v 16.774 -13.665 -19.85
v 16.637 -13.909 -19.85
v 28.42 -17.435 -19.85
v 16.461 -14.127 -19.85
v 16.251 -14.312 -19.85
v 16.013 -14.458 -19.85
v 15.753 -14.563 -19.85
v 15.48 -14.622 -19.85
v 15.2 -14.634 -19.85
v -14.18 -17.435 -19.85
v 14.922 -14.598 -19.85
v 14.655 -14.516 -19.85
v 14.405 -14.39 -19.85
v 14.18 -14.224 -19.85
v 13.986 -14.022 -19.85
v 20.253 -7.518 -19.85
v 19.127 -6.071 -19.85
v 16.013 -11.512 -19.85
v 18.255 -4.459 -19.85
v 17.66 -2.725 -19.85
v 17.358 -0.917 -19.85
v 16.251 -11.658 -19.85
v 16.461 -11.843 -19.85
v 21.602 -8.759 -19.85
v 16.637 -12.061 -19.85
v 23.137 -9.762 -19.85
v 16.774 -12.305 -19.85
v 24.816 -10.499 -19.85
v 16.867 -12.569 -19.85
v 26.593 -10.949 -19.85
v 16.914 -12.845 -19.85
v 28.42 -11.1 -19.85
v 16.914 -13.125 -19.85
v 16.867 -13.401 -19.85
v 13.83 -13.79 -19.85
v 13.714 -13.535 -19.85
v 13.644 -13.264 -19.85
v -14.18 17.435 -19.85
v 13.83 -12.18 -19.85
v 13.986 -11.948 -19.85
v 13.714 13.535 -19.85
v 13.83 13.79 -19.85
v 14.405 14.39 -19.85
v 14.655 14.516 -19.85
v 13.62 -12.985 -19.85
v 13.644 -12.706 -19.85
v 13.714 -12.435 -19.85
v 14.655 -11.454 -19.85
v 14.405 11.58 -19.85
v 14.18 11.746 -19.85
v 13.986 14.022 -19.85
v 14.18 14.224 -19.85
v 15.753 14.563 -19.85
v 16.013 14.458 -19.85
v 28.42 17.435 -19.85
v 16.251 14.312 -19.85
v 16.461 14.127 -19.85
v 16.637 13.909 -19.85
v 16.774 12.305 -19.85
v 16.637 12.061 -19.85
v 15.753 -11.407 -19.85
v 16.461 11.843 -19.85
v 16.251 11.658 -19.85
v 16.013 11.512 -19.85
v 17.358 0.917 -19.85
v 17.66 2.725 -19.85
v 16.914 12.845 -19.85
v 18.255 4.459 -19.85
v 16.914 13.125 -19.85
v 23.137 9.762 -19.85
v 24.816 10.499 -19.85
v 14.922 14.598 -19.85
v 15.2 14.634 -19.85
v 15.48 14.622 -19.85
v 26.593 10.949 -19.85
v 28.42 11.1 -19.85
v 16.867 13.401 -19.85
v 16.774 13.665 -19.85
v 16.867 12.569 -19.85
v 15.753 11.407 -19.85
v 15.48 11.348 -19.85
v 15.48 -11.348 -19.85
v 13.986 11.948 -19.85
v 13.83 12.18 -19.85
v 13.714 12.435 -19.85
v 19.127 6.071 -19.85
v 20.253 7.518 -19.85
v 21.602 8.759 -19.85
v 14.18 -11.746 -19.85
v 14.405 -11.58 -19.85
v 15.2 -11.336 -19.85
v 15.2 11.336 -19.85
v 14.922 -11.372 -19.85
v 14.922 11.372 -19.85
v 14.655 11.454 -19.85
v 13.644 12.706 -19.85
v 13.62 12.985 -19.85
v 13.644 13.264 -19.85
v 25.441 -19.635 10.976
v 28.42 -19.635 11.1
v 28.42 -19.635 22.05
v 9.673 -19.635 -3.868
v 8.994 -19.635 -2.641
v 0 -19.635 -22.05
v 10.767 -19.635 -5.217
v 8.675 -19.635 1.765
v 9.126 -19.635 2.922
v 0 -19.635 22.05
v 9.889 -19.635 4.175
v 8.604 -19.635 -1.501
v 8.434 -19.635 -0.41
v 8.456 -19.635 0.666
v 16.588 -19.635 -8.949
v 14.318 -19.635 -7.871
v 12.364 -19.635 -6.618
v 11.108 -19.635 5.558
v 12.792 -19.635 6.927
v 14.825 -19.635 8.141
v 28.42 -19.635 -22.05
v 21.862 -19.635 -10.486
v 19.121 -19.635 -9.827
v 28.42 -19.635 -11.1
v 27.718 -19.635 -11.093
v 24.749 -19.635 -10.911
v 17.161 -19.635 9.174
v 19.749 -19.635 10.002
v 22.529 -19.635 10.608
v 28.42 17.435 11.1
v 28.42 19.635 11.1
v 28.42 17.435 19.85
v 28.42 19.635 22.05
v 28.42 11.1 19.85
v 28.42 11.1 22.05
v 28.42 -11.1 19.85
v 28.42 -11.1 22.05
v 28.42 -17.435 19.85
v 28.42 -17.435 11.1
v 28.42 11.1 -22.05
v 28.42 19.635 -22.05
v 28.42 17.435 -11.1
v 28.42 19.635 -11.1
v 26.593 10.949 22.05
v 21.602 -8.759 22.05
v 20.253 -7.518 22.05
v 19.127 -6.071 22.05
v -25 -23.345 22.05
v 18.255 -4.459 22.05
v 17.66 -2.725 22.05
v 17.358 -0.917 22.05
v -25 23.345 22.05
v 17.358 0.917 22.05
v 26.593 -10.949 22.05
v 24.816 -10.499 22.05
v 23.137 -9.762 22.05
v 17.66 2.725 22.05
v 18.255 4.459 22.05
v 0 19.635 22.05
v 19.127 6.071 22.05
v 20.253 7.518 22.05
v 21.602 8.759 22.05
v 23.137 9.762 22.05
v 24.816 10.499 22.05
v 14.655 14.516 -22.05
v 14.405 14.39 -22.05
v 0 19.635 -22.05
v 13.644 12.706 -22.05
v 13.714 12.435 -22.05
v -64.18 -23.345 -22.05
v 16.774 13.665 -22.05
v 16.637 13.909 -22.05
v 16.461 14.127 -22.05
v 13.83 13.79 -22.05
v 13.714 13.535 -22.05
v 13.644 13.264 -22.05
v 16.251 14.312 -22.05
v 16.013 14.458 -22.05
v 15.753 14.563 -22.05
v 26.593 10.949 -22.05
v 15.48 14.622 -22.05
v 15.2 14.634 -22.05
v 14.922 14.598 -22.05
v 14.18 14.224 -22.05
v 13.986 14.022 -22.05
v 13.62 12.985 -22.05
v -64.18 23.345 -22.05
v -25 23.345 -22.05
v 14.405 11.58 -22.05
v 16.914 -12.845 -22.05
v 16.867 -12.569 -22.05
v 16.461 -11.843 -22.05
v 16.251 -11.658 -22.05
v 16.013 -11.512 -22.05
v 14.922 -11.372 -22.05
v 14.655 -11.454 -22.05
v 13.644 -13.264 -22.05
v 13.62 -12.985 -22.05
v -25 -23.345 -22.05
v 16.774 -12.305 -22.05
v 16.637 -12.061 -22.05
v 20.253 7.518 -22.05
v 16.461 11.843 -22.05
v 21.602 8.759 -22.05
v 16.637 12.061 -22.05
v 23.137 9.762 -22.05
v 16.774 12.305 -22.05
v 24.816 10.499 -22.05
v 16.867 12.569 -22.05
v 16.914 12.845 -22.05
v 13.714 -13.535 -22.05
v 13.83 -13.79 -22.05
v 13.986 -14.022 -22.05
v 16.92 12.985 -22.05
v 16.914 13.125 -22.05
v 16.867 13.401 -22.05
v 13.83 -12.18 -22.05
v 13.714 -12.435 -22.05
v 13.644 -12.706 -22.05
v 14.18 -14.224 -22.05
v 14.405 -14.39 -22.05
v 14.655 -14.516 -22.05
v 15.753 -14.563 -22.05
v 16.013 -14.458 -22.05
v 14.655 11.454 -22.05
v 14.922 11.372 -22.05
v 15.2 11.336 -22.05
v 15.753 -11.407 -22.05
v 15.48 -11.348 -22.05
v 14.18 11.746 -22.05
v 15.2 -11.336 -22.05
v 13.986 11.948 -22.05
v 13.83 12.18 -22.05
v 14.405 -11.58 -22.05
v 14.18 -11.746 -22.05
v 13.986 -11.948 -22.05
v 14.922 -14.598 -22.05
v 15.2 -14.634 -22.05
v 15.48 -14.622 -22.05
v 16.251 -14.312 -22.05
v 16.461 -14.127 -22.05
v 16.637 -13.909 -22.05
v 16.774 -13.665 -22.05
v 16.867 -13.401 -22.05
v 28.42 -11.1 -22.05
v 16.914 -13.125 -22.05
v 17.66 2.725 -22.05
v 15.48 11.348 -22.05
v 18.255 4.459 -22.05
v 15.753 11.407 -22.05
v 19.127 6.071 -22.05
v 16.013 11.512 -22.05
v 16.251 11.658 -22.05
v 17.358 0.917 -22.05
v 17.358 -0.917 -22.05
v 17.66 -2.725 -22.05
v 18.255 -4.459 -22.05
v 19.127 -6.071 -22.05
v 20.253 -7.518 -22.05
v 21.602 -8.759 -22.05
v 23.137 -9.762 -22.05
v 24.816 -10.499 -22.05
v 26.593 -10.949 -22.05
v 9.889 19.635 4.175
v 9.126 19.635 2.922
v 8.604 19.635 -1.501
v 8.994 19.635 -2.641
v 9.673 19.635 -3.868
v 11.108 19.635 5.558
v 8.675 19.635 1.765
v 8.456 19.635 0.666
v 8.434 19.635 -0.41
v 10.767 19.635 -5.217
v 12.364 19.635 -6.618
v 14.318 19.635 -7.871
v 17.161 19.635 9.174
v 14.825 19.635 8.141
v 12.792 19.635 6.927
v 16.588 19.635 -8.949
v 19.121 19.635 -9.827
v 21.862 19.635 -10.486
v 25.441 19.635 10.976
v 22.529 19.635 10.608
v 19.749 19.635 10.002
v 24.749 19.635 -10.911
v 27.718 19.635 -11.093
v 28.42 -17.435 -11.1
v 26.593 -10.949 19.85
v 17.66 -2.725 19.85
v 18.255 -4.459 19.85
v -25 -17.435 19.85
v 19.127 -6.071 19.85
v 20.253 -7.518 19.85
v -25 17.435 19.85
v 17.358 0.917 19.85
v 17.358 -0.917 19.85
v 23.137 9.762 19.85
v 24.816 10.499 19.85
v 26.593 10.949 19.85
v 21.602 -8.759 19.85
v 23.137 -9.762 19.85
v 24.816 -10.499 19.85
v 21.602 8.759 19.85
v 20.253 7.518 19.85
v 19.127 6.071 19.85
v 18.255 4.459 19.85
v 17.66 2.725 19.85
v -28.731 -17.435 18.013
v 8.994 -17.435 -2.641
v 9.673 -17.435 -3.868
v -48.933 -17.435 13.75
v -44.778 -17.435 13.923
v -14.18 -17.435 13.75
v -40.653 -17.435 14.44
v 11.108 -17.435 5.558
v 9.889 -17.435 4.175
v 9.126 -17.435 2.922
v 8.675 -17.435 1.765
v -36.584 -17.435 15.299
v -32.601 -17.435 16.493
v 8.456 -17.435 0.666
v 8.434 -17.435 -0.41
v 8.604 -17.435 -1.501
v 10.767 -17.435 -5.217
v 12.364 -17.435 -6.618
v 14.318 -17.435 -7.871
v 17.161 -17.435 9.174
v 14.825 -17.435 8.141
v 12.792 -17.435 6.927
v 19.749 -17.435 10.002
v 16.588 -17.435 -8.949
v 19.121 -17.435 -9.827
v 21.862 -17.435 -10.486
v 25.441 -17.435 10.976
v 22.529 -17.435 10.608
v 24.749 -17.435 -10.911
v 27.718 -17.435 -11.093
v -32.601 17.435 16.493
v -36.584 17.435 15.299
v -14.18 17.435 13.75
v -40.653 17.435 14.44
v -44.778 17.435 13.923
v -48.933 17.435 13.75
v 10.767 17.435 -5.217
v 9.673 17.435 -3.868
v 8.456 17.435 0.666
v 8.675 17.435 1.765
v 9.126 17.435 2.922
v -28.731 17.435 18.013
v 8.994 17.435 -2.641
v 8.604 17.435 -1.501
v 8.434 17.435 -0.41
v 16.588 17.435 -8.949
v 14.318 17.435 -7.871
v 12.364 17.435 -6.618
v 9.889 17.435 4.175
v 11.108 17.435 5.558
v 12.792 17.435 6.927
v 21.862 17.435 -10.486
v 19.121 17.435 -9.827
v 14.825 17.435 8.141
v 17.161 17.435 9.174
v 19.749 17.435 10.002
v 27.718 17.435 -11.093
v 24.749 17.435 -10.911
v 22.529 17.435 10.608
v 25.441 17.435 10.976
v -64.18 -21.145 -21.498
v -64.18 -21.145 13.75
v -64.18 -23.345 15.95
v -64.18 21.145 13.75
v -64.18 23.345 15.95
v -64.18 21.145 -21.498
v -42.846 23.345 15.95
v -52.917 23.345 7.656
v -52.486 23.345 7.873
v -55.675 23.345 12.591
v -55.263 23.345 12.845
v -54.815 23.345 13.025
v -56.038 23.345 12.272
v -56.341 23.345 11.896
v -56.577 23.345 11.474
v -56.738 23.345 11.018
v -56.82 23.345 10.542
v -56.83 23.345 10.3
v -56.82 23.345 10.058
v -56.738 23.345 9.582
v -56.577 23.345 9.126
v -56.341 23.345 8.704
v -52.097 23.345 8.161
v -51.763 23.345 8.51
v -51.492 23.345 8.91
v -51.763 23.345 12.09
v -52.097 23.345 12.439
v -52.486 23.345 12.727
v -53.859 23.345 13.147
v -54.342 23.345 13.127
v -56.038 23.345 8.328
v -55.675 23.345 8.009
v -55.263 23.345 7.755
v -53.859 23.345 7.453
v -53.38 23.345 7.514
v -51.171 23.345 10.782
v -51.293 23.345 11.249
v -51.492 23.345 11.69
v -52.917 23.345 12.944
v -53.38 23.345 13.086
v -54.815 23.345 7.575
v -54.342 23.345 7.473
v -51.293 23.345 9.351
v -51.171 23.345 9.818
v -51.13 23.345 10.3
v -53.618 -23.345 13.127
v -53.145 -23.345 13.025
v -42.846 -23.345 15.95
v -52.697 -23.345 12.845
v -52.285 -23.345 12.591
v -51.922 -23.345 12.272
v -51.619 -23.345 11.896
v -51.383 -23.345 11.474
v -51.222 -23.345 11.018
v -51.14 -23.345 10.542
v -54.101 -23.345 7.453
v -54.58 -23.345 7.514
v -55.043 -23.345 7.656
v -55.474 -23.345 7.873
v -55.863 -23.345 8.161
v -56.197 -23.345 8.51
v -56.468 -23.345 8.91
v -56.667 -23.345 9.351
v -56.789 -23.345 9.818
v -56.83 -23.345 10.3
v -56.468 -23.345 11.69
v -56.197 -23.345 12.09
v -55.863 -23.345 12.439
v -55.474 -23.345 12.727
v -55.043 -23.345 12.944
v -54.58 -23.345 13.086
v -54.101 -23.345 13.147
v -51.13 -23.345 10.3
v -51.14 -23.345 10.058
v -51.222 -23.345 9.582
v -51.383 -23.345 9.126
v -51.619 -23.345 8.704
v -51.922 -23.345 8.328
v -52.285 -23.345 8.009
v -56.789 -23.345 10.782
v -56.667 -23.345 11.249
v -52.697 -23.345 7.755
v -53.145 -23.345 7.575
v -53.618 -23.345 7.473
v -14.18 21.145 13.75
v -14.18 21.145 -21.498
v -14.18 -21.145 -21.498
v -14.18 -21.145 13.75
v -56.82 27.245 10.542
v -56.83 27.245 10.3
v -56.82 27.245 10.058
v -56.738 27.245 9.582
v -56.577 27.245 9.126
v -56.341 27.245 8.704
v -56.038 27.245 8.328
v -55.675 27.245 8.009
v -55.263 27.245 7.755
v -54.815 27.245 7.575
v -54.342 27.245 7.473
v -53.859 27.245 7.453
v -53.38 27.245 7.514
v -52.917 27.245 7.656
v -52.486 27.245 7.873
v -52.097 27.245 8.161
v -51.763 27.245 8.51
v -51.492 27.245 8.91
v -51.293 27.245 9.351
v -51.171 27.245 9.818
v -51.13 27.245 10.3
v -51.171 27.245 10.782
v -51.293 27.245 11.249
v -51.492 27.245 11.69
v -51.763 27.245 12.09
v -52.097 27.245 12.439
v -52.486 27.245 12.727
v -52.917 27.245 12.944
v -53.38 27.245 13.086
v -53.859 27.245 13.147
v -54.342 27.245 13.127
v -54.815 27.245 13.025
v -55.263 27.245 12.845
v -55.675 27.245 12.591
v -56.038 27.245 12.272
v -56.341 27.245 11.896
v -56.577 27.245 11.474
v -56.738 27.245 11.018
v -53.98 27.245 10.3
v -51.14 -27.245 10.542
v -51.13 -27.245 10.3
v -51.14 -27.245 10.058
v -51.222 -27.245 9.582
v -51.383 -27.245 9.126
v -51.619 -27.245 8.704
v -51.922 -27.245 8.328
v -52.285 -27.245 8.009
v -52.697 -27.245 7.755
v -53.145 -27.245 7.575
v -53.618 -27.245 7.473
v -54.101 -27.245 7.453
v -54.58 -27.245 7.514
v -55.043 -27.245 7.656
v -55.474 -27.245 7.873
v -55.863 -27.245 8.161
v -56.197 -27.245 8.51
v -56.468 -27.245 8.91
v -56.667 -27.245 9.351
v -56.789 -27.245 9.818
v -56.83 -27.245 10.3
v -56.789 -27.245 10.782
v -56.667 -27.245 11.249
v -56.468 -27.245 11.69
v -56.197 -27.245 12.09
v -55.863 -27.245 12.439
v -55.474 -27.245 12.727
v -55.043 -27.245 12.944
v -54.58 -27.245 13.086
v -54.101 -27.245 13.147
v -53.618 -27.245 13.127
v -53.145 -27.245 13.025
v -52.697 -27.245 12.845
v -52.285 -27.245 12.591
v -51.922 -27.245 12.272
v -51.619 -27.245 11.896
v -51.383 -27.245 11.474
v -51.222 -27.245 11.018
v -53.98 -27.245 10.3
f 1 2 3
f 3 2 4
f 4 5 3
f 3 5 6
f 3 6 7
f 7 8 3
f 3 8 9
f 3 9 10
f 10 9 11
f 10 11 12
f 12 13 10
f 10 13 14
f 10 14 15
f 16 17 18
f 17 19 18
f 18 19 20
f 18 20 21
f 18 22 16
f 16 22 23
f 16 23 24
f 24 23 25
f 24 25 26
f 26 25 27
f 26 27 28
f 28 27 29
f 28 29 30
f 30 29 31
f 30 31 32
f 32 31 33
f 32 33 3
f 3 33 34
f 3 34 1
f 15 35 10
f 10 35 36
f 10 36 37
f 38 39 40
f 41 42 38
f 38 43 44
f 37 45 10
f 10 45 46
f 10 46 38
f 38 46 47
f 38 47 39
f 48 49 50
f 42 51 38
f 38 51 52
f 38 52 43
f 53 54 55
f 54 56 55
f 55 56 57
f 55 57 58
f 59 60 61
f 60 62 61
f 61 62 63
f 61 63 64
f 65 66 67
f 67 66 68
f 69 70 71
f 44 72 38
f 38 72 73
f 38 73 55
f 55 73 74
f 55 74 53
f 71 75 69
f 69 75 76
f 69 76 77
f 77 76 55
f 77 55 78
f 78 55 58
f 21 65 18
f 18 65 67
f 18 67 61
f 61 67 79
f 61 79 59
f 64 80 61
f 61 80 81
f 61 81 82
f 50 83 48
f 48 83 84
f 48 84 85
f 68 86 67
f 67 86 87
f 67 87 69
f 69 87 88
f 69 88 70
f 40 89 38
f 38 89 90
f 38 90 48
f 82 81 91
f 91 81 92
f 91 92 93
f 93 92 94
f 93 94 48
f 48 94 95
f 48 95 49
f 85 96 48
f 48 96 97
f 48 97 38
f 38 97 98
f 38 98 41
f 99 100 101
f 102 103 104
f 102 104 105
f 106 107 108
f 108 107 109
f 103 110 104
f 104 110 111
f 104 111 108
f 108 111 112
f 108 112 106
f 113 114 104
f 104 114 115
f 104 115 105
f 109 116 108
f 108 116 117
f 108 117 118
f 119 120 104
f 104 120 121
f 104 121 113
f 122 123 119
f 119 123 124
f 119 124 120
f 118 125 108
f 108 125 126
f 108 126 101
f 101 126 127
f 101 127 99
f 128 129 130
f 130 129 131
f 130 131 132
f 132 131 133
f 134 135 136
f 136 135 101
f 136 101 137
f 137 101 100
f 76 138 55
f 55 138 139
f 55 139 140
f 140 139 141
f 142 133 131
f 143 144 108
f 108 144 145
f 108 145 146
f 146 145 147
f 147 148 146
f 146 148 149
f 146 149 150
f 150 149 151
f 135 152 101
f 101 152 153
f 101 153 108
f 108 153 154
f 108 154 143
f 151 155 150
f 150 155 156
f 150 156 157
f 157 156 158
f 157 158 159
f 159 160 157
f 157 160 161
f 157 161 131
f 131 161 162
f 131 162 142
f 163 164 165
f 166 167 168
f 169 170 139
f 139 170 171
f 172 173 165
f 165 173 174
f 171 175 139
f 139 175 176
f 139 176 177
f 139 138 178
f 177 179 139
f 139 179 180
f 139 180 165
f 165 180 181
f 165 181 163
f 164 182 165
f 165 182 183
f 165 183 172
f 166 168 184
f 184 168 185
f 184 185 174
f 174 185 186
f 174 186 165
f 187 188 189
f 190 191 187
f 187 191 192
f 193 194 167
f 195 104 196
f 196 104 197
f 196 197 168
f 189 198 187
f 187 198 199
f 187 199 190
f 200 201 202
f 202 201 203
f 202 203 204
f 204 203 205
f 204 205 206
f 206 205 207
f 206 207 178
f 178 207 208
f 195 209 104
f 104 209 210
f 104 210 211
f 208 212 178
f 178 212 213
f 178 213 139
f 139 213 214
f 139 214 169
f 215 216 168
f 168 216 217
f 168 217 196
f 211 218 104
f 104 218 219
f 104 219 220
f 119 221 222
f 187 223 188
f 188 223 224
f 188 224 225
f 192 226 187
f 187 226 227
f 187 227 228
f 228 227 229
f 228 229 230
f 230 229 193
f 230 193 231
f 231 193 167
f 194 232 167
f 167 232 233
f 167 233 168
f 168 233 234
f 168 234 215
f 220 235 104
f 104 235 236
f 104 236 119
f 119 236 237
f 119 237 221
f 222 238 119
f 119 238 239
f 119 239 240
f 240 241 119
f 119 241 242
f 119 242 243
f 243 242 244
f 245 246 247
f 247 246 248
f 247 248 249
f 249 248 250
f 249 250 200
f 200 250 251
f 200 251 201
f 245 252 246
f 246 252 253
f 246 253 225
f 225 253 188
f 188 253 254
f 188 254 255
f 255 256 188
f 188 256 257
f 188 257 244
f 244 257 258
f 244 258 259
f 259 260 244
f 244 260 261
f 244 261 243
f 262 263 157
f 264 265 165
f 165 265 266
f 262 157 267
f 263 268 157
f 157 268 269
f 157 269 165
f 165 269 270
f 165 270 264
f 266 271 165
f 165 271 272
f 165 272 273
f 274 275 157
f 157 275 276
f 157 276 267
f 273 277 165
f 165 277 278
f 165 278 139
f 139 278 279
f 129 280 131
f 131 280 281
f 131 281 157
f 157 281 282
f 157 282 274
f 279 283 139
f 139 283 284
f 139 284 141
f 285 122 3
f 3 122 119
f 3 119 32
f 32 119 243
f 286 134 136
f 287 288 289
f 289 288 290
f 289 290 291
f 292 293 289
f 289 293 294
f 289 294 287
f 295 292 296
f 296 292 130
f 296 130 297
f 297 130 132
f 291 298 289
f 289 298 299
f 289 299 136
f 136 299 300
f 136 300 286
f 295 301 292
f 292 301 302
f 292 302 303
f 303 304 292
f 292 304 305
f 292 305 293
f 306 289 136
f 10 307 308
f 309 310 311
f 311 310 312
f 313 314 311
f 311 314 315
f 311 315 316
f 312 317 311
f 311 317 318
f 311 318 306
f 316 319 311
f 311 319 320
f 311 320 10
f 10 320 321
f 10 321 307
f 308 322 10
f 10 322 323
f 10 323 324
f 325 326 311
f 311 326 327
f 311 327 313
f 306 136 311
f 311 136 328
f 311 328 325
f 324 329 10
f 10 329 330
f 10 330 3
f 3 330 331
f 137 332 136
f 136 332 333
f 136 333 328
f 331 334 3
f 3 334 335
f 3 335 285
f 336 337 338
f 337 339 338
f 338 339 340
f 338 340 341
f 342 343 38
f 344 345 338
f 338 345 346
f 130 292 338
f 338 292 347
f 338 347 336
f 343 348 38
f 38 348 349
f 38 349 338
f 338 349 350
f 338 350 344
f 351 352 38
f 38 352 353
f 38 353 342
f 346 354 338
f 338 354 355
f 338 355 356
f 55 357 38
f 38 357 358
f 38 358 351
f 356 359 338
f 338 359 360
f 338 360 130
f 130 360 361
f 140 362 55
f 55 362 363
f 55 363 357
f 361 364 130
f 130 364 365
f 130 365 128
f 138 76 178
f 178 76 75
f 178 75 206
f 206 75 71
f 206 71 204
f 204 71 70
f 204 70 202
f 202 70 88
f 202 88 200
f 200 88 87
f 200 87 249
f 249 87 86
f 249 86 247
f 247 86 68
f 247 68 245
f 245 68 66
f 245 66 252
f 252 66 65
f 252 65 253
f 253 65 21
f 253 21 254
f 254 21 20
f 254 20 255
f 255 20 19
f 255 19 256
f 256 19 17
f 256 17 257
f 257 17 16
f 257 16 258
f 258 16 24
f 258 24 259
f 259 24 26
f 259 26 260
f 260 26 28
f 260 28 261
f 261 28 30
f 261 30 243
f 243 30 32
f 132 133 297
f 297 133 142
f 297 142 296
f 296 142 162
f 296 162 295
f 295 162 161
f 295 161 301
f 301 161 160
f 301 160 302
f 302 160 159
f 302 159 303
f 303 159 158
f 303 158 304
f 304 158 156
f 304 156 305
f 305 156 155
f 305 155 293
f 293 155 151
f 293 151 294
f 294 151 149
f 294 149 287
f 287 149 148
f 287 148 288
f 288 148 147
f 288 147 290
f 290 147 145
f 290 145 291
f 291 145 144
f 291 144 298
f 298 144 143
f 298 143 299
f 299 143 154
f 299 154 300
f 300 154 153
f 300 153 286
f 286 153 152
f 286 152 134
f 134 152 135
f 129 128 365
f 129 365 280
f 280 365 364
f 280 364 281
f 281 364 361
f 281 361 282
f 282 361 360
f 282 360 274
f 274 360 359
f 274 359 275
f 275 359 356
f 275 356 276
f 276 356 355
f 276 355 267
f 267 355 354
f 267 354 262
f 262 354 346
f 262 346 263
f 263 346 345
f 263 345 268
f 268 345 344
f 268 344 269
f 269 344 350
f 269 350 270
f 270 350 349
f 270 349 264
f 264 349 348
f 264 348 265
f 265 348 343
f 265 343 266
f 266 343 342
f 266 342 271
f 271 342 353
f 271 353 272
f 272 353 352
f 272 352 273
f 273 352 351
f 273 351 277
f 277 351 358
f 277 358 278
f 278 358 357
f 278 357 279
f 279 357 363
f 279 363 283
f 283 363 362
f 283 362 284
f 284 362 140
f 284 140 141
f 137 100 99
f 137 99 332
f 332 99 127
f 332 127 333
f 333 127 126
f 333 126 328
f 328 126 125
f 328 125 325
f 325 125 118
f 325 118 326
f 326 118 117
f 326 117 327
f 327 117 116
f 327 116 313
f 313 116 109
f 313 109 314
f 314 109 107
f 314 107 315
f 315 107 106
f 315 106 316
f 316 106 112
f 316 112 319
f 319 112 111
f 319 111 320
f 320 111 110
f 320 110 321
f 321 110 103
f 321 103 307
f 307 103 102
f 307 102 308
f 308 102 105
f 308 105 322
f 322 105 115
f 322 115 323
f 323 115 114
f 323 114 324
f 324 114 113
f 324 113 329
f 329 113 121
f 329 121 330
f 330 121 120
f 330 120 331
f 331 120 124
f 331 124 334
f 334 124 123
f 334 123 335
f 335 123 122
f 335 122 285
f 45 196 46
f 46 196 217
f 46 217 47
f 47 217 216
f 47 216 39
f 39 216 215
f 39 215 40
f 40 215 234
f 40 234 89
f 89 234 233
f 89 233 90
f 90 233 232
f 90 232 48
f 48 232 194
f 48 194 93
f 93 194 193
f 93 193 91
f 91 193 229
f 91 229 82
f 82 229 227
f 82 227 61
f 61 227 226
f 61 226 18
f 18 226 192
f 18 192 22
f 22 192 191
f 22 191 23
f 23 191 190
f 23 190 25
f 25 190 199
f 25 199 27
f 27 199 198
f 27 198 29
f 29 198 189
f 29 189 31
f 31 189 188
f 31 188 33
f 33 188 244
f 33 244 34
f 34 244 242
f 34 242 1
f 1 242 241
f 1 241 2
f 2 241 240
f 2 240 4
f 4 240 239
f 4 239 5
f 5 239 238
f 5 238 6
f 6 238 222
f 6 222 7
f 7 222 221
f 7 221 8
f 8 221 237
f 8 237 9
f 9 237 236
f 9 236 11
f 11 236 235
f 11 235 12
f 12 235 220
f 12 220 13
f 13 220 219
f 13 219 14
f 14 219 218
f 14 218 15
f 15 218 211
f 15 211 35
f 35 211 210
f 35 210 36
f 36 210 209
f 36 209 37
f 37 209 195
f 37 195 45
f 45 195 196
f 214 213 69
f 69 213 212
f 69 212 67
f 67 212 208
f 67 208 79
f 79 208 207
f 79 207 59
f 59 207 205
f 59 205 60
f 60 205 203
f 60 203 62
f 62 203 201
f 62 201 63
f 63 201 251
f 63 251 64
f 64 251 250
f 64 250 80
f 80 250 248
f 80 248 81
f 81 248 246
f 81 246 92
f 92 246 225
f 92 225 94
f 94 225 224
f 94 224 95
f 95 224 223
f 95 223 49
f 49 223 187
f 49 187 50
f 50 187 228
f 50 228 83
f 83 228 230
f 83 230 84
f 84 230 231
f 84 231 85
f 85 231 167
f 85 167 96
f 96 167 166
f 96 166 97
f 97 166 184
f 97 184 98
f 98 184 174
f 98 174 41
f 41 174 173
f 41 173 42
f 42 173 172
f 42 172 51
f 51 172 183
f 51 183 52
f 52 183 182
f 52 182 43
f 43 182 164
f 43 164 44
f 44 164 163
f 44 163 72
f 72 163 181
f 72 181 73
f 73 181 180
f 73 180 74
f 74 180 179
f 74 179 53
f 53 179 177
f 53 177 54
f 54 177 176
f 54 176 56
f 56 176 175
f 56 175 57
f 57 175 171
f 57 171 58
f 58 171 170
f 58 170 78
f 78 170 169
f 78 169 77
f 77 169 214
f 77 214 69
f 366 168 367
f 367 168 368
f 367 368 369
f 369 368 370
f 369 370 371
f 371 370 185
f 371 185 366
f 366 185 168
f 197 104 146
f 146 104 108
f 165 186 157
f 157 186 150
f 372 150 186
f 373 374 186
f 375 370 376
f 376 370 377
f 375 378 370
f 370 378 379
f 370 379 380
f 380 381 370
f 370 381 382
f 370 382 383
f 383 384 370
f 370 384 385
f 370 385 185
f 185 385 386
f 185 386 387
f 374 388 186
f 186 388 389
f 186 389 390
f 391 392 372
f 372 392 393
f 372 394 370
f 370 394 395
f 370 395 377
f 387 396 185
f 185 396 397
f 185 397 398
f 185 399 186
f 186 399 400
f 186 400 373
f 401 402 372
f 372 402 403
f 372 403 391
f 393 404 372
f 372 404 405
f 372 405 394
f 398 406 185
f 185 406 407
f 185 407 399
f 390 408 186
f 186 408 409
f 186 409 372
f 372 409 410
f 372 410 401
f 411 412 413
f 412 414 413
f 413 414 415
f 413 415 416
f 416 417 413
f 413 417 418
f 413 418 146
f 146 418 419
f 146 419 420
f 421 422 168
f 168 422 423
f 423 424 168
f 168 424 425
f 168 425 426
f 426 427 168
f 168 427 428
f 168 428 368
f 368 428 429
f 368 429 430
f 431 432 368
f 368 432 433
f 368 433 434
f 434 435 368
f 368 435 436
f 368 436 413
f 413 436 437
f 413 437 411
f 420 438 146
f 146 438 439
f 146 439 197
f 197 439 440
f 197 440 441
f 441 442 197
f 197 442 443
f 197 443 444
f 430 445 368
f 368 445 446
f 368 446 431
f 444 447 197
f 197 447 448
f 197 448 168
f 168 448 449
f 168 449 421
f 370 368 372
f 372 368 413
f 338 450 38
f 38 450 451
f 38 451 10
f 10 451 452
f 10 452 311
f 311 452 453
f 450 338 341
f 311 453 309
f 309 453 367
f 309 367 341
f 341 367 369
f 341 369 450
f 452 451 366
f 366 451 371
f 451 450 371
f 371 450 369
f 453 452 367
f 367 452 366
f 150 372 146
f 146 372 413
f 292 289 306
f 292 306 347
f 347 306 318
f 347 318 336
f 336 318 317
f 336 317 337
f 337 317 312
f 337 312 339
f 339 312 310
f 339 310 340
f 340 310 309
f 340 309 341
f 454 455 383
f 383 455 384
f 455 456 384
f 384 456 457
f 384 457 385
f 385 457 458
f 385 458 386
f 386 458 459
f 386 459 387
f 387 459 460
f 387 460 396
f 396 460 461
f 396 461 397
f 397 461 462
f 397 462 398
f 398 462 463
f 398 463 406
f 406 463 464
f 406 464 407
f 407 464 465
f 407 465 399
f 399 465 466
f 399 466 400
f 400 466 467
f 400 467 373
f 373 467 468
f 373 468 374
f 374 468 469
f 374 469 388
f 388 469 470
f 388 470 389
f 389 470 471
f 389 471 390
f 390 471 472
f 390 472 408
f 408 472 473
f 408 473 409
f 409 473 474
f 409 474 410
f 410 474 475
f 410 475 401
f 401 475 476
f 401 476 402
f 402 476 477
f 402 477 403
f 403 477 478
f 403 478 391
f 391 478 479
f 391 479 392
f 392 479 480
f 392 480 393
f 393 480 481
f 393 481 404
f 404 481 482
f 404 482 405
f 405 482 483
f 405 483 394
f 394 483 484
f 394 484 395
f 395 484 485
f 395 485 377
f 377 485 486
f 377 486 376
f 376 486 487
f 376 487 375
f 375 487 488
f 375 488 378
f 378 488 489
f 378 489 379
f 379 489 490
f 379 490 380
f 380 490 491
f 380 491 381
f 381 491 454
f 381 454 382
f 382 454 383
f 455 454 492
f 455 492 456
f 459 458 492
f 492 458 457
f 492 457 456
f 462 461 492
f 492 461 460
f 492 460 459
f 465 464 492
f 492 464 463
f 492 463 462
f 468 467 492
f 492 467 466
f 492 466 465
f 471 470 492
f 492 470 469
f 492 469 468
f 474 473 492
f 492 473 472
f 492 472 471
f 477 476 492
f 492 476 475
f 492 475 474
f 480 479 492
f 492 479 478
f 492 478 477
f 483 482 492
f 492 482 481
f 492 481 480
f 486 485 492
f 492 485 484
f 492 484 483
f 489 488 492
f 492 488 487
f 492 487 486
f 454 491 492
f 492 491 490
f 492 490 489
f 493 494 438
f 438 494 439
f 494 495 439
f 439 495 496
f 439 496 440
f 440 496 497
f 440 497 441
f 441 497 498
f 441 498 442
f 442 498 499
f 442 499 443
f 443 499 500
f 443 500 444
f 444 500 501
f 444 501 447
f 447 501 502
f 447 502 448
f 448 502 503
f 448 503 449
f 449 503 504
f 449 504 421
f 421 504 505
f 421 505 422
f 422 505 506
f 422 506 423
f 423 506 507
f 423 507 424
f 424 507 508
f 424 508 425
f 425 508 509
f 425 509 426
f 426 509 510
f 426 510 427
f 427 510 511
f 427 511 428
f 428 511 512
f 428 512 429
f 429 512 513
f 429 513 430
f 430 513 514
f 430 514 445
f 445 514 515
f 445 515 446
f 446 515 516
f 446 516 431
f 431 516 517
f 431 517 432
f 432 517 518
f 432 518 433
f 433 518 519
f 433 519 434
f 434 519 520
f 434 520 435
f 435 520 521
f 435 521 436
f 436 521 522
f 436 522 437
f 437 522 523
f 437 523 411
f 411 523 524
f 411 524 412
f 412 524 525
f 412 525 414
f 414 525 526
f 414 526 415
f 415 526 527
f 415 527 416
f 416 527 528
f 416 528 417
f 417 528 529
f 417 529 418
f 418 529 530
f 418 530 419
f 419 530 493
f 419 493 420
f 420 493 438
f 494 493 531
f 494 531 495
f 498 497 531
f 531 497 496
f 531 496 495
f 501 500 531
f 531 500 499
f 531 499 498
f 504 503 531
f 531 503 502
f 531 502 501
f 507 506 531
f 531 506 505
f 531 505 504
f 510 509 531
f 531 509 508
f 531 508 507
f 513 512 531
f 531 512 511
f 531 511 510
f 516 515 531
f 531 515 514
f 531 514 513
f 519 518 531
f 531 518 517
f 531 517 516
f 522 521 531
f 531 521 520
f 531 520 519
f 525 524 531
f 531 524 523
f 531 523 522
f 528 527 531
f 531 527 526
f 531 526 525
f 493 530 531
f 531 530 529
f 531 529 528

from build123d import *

# Parameters (mm, degrees)
ESQUISSE1_W             = 44.1
ESQUISSE1_H             = 39.27
BOSS_EXTRU_1_DEPTH      = 28.42
ESQUISSE2_W             = 39.7
ESQUISSE2_H             = 34.87
ENL_V_MAT_EXTRU_1_DEPTH = 28.42
ESQUISSE3_R             = 11.1
ENL_V_MAT_EXTRU_2_DEPTH = 50
ESQUISSE4_RX            = 20
ESQUISSE4_RY            = 11.1
ENL_V_MAT_EXTRU_3_DEPTH = 50
ESQUISSE5_R             = 1.65
ENL_V_MAT_EXTRU_4_DEPTH = 10
ESQUISSE6_W             = 64.18
ESQUISSE6_H             = 39.27
BOSS_EXTRU_2_DEPTH      = 2.2
ESQUISSE8_W             = 44.1
ESQUISSE8_H             = 39.27
BOSS_EXTRU_3_DEPTH      = 25
BOSS_EXTRU_4_DEPTH      = 44.1
BOSS_EXTRU_5_START      = -2.2
ESQUISSE13_W            = 39.18
ESQUISSE13_H            = 3.71
BOSS_EXTRU_5_DEPTH      = 2.2
ESQUISSE14_W            = 39.7
ESQUISSE14_H            = 34.87
ENL_V_MAT_EXTRU_5_DEPTH = 25
ESQUISSE17_W            = 38
ESQUISSE17_H            = 46.69
BOSS_EXTRU_6_DEPTH      = 39.18
ESQUISSE18_W            = 35.2475242
ESQUISSE18_H            = 42.29
ENL_V_MAT_EXTRU_6_DEPTH = 50
BOSS_EXTRU_7_DEPTH      = 46.69
CONG_1_R                = 50
ESQUISSE23_R            = 2.85
BOSS_EXTRU_8_DEPTH      = 3.9
BOSS_EXTRU_9_START      = 3.9
ESQUISSE26_R            = 2.85
BOSS_EXTRU_9_DEPTH      = 3.9


with BuildPart() as part:
    # Esquisse1 → Boss.-Extru.1 (new body)
    with BuildSketch(Plane(origin=(0, 0, 0), x_dir=(0, 0, -1), z_dir=(1, 0, 0))):
        Rectangle(ESQUISSE1_W, ESQUISSE1_H)
    extrude(amount=BOSS_EXTRU_1_DEPTH)

    # Esquisse2 → Enlèv. mat.-Extru.1 (cut)
    with BuildSketch(Plane.ZY):
        Rectangle(ESQUISSE2_W, ESQUISSE2_H)
    extrude(amount=-ENL_V_MAT_EXTRU_1_DEPTH, mode=Mode.SUBTRACT)

    # Esquisse3 → Enlèv. mat.-Extru.2 (cut)
    with BuildSketch(Plane.XY.offset(22.05)):
        with Locations((28.42, 0)):
            Circle(ESQUISSE3_R)
    extrude(amount=-ENL_V_MAT_EXTRU_2_DEPTH, mode=Mode.SUBTRACT)

    # Esquisse4 → Enlèv. mat.-Extru.3 (cut)
    with BuildSketch(Plane.XZ.offset(19.635)):
        with Locations(Location((28.42, 0), (0, 0, -180))):
            Ellipse(ESQUISSE4_RX, ESQUISSE4_RY)
    extrude(amount=-ENL_V_MAT_EXTRU_3_DEPTH, mode=Mode.SUBTRACT)

    # Esquisse5 → Enlèv. mat.-Extru.4 (cut)
    with BuildSketch(Plane(origin=(0, 0, -22.05), x_dir=(-1, 0, 0), z_dir=(0, 0, -1))):
        with Locations((-15.27, -12.985)):
            Circle(ESQUISSE5_R)
        with Locations((-15.27, 12.985)):
            Circle(ESQUISSE5_R)
    extrude(amount=-ENL_V_MAT_EXTRU_4_DEPTH, mode=Mode.SUBTRACT)

    # Esquisse6 → Boss.-Extru.2 (add)
    with BuildSketch(Plane(origin=(0, 0, -22.05), x_dir=(-1, 0, 0), z_dir=(0, 0, -1))):
        with Locations((32.09, 0)):
            Rectangle(ESQUISSE6_W, ESQUISSE6_H)
    extrude(amount=-BOSS_EXTRU_2_DEPTH)

    # Esquisse8 → Boss.-Extru.3 (add)
    with BuildSketch(Plane.ZY):
        Rectangle(ESQUISSE8_W, ESQUISSE8_H)
    extrude(amount=BOSS_EXTRU_3_DEPTH)

    # Esquisse10 → Boss.-Extru.4 (add)
    with BuildSketch(Plane.XY.offset(22.05)):
        Polygon((-25, -19.635), (0, -19.635), (-25, -23.345), align=None)
        Polygon((-25, 19.635), (0, 19.635), (-25, 23.345), align=None)
    extrude(amount=-BOSS_EXTRU_4_DEPTH)

    # Esquisse13 → Boss.-Extru.5 (add)
    with BuildSketch(Plane(origin=(0, 0, -22.05), x_dir=(-1, 0, 0), z_dir=(0, 0, -1)).offset(BOSS_EXTRU_5_START)):
        with Locations((44.59, 21.49)):
            Rectangle(ESQUISSE13_W, ESQUISSE13_H)
        with Locations((44.59, -21.49)):
            Rectangle(ESQUISSE13_W, ESQUISSE13_H)
    extrude(amount=BOSS_EXTRU_5_DEPTH)

    # Esquisse14 → Enlèv. mat.-Extru.5 (cut)
    with BuildSketch(Plane(origin=(0, 0, 0), x_dir=(0, 0, -1), z_dir=(1, 0, 0))):
        Rectangle(ESQUISSE14_W, ESQUISSE14_H)
    extrude(amount=-ENL_V_MAT_EXTRU_5_DEPTH, mode=Mode.SUBTRACT)

    # Esquisse17 → Boss.-Extru.6 (add)
    with BuildSketch(Plane.ZY.offset(64.18)):
        with Locations((-3.05, 0)):
            Rectangle(ESQUISSE17_W, ESQUISSE17_H)
    extrude(amount=-BOSS_EXTRU_6_DEPTH)

    # Esquisse18 → Enlèv. mat.-Extru.6 (cut)
    with BuildSketch(Plane.ZY.offset(64.18)):
        with Locations((-3.8737621, 0)):
            Rectangle(ESQUISSE18_W, ESQUISSE18_H)
    extrude(amount=-ENL_V_MAT_EXTRU_6_DEPTH, mode=Mode.SUBTRACT)

    # Esquisse22 → Boss.-Extru.7 (add)
    with BuildSketch(Plane.XZ.offset(23.345)):
        Polygon((-42.845664821, 15.95), (-25, 15.95), (-25, 22.05), align=None)
    extrude(amount=-BOSS_EXTRU_7_DEPTH)

    # Congé1
    # the kernel refuses this fillet: 50 mm, written as the material it takes off along each edge
    with BuildSketch(Plane(origin=(-25, 17.435, 13.75), x_dir=(0, 0, 1), z_dir=(0, -1, 0))) as cong_1_piece_1:
        with BuildLine():
            CenterArc((50, 23.933031567), CONG_1_R, 180, 28.597962222)
            Line((0, 23.933031567), (0, 0))
            Line((0, 0), (6.1, 0))
        make_face()
    extrude(amount=34.87, mode=Mode.SUBTRACT)

    # Esquisse23 → Boss.-Extru.8 (add)
    with BuildSketch(Plane(origin=(0, 23.345, 0), x_dir=(1, 0, 0), z_dir=(0, 1, 0))):
        with Locations(Location((-53.98, -10.3, 0), (0, 0, 180))):
            Circle(ESQUISSE23_R)
    extrude(amount=BOSS_EXTRU_8_DEPTH)

    # Esquisse26 → Boss.-Extru.9 (add)
    with BuildSketch(Plane.XZ.offset(23.345).offset(BOSS_EXTRU_9_START)):
        with Locations(Location((-53.98, 10.3, 0), (0, 0, 180))):
            Circle(ESQUISSE26_R)
    extrude(amount=-BOSS_EXTRU_9_DEPTH)


solid = part.part
